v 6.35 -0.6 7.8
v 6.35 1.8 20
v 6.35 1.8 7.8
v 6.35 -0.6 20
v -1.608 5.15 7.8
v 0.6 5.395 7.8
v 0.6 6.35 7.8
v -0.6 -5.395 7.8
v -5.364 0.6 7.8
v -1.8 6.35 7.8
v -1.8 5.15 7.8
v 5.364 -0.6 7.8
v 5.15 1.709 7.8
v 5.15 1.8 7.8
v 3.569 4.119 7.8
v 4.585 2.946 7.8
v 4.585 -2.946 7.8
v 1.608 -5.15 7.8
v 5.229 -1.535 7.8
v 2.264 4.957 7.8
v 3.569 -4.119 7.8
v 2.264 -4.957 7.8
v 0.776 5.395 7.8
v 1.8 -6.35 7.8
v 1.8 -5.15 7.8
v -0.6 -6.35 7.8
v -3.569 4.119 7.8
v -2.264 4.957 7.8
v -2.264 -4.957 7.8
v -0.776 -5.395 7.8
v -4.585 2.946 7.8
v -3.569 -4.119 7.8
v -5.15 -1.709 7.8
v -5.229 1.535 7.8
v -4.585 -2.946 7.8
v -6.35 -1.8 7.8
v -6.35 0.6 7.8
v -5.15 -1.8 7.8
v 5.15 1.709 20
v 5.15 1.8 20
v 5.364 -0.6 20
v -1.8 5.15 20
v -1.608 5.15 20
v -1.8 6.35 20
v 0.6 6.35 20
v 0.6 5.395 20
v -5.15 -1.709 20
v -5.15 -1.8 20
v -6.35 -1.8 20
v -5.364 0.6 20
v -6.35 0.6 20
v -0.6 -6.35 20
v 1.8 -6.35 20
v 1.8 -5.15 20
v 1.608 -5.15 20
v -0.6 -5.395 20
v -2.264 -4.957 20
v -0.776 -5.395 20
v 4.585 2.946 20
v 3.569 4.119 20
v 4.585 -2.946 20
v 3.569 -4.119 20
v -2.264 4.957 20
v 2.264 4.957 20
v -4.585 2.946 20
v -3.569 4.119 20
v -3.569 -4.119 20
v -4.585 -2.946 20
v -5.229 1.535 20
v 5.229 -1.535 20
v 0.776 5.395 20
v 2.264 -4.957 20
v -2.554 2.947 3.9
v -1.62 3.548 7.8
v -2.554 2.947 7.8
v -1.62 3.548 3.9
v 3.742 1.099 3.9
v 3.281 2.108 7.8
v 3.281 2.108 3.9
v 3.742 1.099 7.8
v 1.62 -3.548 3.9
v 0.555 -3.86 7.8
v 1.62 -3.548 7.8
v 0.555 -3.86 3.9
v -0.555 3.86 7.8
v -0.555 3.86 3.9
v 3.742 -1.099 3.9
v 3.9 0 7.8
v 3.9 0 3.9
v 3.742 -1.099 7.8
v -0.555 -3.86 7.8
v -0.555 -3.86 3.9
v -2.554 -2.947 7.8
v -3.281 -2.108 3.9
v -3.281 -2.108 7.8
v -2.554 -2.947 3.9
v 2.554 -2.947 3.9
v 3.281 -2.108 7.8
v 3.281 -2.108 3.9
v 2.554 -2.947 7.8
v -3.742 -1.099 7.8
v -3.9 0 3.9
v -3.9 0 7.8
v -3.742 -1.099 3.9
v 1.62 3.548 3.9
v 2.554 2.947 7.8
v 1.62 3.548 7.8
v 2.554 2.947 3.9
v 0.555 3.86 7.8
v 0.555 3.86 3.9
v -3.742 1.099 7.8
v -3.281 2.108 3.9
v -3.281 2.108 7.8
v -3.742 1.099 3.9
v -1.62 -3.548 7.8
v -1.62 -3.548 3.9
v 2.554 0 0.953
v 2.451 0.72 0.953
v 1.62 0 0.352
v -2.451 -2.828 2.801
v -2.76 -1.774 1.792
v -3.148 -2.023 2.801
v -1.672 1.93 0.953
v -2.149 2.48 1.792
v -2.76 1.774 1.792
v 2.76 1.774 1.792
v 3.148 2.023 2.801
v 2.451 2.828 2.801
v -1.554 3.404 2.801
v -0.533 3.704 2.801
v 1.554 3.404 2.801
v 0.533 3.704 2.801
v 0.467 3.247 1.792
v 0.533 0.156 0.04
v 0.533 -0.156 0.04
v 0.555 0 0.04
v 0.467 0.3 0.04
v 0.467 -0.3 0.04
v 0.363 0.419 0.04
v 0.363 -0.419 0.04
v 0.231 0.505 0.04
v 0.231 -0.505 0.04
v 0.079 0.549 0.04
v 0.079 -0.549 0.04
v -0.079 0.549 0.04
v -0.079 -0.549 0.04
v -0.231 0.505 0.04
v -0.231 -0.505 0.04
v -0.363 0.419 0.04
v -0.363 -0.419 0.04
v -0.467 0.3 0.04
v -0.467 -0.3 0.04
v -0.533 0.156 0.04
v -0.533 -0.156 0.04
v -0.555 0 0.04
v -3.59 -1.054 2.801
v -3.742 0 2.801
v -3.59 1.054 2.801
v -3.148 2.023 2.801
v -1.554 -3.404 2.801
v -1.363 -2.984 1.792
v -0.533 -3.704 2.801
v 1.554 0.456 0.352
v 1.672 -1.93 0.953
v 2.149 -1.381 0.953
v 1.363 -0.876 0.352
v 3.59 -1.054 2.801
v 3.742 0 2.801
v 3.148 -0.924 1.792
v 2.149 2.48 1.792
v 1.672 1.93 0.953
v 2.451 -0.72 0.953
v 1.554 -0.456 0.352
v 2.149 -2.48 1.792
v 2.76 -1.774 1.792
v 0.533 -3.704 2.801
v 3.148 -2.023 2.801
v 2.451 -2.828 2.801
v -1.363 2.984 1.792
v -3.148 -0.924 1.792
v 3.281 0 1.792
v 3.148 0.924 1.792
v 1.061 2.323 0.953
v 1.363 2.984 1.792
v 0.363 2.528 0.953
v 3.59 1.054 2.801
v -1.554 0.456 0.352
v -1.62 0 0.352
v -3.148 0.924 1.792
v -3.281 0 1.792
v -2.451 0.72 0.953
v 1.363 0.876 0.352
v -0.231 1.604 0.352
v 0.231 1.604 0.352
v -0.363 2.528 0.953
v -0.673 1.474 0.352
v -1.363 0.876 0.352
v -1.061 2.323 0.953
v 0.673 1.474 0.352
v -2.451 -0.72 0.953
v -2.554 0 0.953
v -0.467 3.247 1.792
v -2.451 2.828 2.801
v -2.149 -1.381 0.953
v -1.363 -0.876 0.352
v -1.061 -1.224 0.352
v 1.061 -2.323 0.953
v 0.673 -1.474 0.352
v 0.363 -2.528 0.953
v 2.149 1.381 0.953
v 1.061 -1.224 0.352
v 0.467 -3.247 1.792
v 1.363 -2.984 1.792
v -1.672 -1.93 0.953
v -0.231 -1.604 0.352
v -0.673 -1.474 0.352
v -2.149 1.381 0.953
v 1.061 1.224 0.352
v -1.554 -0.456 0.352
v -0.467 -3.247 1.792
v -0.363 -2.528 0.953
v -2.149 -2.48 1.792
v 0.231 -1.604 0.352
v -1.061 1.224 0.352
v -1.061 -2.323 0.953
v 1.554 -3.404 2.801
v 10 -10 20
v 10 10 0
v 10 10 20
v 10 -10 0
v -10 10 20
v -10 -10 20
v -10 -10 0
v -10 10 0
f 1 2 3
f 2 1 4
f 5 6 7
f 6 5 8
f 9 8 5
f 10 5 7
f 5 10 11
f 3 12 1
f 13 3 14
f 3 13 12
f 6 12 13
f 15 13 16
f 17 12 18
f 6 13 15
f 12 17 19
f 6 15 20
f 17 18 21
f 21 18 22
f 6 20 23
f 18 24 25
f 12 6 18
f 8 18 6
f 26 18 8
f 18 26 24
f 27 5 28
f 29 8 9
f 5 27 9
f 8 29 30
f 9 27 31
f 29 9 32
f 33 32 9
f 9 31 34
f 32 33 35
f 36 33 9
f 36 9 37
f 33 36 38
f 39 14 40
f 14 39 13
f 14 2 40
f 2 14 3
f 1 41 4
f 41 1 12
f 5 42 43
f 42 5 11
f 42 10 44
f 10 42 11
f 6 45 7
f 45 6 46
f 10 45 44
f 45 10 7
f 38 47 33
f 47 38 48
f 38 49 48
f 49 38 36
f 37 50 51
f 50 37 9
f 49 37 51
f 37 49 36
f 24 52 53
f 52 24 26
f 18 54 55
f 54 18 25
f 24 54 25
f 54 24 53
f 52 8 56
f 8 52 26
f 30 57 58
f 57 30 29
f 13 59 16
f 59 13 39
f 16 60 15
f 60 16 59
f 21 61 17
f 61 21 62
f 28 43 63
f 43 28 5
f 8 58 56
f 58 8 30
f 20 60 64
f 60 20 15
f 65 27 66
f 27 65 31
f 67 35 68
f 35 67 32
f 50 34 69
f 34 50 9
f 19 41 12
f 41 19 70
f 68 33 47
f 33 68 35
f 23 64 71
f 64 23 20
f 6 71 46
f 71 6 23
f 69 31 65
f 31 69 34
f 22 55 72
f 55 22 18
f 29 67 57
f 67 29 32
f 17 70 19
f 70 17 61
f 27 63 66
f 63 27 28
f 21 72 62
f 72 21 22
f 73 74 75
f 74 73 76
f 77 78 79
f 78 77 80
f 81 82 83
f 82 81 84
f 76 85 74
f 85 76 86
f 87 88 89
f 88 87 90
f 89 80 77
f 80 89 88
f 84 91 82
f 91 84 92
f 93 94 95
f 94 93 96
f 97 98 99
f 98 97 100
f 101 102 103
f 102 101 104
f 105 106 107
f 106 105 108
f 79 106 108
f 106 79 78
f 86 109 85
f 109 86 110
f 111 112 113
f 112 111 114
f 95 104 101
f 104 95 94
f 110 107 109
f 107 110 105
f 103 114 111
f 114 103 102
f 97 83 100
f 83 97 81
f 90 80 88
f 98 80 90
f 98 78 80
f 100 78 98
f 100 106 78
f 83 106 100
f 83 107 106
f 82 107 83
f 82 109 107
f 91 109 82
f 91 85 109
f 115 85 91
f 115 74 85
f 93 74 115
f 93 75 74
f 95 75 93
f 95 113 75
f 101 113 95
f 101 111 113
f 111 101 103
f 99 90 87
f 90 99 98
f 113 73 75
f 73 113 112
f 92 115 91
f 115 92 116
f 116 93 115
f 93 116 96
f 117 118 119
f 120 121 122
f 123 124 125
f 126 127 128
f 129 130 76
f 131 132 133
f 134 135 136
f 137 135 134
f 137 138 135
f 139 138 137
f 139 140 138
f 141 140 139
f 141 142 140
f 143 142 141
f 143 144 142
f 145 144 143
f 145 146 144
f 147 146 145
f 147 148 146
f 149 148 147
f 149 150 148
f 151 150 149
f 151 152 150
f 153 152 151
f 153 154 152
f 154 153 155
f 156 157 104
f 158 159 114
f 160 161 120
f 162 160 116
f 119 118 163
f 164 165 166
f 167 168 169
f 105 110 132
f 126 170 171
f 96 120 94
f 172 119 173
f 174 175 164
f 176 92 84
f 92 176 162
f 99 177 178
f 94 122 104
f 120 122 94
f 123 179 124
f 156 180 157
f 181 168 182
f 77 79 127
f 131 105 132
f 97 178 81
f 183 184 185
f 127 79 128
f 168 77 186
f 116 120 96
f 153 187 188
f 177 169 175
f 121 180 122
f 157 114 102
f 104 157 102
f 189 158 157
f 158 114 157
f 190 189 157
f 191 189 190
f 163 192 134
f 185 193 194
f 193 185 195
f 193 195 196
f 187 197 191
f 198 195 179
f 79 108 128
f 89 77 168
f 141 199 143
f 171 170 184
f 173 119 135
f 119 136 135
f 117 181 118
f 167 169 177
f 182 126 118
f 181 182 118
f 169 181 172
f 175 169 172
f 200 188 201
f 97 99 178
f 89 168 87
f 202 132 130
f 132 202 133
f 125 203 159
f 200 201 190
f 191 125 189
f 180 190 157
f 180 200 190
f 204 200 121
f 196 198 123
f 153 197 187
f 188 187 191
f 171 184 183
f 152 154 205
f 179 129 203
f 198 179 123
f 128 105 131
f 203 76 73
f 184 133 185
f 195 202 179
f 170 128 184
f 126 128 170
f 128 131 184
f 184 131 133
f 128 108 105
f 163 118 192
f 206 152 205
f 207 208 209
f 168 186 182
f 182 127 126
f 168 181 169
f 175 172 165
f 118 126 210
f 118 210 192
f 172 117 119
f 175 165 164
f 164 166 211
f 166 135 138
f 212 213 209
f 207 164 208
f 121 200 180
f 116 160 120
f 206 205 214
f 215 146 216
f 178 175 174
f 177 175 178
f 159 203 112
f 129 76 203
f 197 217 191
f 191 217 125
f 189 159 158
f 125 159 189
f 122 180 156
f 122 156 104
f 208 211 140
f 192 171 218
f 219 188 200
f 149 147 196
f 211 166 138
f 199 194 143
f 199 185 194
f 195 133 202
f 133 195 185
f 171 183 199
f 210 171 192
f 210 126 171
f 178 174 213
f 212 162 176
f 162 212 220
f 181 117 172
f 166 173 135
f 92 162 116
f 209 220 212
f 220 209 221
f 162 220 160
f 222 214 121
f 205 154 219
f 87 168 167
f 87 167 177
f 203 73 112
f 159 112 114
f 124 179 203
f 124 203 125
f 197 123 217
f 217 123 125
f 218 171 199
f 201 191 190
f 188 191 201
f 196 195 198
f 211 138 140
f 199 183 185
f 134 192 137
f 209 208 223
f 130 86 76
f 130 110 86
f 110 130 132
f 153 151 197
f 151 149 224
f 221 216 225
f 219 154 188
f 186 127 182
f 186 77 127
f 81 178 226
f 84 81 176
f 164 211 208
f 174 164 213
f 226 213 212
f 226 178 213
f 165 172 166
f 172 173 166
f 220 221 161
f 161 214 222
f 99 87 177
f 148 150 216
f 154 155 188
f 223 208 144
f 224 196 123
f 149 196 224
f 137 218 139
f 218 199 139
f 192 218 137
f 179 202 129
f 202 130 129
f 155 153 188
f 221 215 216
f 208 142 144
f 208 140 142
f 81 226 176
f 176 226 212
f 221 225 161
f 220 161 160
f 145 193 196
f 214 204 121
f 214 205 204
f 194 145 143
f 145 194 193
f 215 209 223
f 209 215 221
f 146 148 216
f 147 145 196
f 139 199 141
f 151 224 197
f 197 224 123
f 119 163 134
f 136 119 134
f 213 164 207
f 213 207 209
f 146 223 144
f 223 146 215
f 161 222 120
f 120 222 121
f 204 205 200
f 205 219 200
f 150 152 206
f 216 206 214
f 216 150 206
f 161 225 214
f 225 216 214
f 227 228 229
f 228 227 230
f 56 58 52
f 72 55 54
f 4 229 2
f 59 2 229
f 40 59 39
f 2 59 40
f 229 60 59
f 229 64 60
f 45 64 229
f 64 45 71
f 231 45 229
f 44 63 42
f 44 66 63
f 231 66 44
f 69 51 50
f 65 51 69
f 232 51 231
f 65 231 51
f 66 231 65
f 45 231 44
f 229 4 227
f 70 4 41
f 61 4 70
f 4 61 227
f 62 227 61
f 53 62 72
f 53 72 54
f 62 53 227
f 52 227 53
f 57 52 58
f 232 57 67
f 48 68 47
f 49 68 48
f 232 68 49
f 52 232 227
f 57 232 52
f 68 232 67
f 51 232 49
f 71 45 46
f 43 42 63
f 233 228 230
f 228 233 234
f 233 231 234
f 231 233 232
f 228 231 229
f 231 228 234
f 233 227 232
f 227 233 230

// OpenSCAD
ledD=7.8;
ledH=3.9;
led2D=10.9;
led2H=22.1;


//ledCutout();
LedInCube();

module LedInCube(){
    difference(){
        X=20;
        Y=20;
        Z=20;
        translate(-.5*[X,Y,0])
            cube([20,20,20]);
        ledCutout();
    }
}

module ledCutout(){
    $fn=22;
    
    translate([0,0,ledH+ledD/2]){
        cylinder(d=led2D,led2H);
    
        for (winkel=[0:90:360]){
            rotate([0,0,winkel])
                translate([led2D/2-.3,-0.6,0])
                    cube([1.2,2.4,20.6]);
        }
    }
    
    translate([0,0,ledD/2]){
        cylinder(d=ledD,ledH);
        sphere(d=ledD);
    }
}
